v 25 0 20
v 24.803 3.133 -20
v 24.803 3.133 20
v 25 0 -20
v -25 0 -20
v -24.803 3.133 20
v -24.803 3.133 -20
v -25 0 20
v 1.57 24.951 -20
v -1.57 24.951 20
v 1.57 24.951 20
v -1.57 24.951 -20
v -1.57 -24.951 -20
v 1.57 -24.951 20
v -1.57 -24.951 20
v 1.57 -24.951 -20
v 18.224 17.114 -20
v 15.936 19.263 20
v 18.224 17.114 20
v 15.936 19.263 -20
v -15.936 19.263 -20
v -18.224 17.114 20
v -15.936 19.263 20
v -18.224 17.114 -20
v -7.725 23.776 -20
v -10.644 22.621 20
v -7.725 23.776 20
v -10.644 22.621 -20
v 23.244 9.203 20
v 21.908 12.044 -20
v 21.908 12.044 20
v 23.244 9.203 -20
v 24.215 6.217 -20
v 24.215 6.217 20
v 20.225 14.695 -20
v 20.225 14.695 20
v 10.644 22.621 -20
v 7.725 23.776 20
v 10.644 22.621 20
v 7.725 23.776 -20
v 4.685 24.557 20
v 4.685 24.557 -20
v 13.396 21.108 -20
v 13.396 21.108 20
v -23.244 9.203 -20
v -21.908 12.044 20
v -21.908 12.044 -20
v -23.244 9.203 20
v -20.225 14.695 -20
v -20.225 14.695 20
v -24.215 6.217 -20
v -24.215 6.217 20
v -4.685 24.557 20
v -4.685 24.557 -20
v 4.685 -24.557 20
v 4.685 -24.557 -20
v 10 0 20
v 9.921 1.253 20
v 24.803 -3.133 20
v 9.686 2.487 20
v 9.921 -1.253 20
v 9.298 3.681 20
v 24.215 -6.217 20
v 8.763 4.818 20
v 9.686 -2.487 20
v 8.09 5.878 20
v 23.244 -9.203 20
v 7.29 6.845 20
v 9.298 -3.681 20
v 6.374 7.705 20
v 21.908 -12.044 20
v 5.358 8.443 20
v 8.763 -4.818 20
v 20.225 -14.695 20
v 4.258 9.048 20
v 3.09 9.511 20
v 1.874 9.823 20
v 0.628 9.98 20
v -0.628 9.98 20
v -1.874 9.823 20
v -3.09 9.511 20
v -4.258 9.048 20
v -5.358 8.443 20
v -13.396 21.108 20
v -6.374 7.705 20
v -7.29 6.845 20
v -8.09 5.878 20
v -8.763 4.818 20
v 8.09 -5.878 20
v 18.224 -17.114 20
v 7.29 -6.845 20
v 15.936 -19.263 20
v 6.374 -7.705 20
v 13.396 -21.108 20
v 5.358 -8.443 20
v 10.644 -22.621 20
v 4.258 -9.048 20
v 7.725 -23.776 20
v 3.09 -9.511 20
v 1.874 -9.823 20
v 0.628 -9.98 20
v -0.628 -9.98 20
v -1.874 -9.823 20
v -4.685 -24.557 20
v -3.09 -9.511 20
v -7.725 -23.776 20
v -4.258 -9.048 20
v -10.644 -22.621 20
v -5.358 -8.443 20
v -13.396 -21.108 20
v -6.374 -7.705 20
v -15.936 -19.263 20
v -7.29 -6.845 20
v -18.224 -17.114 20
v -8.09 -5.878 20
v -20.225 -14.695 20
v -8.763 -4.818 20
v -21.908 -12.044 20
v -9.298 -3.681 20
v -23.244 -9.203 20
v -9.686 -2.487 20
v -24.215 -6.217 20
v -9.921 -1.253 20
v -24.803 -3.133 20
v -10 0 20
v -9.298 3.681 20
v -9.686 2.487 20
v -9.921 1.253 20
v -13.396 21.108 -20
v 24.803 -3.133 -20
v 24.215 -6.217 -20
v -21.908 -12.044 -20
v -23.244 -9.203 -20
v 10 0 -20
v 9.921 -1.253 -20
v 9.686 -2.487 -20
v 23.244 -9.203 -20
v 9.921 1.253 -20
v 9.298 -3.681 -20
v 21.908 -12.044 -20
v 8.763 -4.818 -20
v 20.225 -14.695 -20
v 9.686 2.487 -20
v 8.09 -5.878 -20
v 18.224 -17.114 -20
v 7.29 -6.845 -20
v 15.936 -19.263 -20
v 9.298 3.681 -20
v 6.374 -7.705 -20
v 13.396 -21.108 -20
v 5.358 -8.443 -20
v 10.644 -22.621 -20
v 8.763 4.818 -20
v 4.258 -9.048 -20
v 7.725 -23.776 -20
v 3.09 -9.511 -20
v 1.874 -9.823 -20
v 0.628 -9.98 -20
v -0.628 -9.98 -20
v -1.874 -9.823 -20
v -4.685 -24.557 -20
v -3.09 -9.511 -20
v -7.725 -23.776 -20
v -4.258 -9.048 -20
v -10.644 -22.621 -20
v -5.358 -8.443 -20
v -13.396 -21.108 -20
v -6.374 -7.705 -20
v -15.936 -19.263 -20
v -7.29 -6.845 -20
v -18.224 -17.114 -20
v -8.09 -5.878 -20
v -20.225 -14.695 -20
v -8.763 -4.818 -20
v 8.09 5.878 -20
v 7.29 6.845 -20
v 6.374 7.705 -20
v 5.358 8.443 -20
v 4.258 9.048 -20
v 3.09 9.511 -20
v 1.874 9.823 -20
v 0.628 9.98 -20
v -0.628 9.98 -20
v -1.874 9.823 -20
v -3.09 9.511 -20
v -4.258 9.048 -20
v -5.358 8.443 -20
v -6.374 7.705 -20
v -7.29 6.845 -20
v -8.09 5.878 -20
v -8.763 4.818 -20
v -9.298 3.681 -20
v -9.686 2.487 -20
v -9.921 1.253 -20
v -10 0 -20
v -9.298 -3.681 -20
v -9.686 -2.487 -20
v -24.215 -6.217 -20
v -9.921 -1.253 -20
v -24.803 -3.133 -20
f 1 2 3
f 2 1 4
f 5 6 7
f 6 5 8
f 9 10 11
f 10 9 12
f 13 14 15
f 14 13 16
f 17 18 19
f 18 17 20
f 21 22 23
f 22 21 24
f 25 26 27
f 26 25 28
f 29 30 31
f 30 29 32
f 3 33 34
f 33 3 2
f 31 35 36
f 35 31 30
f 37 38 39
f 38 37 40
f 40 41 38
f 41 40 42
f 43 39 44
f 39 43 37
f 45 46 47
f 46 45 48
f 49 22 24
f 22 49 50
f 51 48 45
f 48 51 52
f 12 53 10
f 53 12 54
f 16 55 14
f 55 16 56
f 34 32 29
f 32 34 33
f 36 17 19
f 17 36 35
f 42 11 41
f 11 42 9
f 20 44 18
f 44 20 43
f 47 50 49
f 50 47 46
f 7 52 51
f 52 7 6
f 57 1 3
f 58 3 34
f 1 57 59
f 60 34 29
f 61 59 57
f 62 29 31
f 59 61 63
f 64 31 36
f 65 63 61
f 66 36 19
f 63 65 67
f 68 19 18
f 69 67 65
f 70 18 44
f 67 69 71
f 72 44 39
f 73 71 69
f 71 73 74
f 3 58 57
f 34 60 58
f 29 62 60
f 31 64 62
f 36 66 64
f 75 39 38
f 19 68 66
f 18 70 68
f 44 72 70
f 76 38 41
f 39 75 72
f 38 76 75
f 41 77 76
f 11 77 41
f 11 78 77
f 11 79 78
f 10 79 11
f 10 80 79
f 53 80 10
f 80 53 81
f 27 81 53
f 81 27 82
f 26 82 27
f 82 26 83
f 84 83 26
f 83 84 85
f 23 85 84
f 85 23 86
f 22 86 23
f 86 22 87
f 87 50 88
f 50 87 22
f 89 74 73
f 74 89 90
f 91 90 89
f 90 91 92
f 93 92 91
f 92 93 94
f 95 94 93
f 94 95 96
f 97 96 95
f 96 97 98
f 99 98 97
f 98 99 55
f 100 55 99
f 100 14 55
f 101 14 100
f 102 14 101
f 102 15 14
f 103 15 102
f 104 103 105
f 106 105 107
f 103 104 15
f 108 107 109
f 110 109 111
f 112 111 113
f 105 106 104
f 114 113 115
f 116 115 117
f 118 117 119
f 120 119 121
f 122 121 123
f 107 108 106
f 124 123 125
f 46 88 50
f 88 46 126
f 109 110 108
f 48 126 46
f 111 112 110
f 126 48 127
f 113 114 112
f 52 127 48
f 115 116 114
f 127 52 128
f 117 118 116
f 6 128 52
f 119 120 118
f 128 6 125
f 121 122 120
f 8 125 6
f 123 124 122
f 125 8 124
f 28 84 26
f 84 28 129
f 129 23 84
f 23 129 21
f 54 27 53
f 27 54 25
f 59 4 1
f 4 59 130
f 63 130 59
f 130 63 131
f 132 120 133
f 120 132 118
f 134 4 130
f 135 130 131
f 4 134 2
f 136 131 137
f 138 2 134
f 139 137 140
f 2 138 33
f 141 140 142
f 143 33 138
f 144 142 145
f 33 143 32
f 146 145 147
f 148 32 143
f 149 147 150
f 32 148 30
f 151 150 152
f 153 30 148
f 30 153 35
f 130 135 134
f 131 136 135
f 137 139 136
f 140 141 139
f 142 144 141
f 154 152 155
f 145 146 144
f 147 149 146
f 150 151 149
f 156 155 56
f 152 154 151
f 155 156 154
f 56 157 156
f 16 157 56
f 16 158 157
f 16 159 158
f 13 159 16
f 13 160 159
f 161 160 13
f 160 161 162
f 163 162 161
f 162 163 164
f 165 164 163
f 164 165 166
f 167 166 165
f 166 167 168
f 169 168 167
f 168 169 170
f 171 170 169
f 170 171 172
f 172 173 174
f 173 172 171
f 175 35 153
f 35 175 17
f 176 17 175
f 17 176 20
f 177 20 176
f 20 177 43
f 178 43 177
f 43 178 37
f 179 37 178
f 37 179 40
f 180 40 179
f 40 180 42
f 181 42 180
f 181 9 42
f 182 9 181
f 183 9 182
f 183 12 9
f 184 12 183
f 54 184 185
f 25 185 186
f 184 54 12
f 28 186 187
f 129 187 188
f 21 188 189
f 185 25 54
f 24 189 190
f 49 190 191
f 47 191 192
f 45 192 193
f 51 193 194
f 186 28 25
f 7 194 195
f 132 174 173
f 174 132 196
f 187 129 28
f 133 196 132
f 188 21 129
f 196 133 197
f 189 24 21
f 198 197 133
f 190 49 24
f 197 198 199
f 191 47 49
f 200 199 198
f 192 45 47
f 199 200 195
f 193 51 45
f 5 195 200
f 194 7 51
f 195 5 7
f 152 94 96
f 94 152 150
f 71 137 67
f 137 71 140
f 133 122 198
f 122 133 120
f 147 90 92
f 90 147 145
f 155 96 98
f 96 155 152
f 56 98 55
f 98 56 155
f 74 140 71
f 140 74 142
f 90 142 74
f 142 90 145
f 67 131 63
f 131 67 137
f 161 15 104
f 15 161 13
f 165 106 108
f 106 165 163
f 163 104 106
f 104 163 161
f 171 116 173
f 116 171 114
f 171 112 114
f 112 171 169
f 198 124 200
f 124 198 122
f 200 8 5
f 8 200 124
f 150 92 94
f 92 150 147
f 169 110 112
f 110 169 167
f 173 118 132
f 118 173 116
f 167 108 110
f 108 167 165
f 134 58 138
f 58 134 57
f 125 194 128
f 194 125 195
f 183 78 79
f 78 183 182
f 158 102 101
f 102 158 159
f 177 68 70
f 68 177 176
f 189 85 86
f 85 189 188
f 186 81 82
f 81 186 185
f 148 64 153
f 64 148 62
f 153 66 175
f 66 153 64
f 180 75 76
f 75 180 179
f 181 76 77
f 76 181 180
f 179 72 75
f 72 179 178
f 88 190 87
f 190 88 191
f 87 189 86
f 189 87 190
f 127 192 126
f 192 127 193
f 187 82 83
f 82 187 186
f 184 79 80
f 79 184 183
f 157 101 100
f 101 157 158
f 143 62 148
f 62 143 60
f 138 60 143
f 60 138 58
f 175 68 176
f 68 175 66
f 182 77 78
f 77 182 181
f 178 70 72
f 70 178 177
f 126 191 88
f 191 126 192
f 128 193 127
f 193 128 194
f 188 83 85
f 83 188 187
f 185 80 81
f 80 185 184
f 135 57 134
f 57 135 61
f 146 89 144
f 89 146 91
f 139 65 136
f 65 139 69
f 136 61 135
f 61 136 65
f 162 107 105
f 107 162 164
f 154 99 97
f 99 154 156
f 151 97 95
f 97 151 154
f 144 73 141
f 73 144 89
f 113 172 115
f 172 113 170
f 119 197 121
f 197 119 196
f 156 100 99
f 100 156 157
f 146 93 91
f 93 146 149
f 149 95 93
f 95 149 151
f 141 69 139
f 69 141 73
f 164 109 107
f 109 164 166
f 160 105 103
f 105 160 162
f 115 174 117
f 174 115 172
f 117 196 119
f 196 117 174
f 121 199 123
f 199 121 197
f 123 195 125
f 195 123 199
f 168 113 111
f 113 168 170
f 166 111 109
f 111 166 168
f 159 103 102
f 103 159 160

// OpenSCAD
$fn = 50;


difference() {
	union() {
		translate(v = [0, 0, -20.0000000000]) {
			cylinder(h = 40, r = 25.0000000000);
		}
	}
	union() {
		translate(v = [0, 0, -100.0000000000]) {
			cylinder(h = 200, r = 10);
		}
	}
}
